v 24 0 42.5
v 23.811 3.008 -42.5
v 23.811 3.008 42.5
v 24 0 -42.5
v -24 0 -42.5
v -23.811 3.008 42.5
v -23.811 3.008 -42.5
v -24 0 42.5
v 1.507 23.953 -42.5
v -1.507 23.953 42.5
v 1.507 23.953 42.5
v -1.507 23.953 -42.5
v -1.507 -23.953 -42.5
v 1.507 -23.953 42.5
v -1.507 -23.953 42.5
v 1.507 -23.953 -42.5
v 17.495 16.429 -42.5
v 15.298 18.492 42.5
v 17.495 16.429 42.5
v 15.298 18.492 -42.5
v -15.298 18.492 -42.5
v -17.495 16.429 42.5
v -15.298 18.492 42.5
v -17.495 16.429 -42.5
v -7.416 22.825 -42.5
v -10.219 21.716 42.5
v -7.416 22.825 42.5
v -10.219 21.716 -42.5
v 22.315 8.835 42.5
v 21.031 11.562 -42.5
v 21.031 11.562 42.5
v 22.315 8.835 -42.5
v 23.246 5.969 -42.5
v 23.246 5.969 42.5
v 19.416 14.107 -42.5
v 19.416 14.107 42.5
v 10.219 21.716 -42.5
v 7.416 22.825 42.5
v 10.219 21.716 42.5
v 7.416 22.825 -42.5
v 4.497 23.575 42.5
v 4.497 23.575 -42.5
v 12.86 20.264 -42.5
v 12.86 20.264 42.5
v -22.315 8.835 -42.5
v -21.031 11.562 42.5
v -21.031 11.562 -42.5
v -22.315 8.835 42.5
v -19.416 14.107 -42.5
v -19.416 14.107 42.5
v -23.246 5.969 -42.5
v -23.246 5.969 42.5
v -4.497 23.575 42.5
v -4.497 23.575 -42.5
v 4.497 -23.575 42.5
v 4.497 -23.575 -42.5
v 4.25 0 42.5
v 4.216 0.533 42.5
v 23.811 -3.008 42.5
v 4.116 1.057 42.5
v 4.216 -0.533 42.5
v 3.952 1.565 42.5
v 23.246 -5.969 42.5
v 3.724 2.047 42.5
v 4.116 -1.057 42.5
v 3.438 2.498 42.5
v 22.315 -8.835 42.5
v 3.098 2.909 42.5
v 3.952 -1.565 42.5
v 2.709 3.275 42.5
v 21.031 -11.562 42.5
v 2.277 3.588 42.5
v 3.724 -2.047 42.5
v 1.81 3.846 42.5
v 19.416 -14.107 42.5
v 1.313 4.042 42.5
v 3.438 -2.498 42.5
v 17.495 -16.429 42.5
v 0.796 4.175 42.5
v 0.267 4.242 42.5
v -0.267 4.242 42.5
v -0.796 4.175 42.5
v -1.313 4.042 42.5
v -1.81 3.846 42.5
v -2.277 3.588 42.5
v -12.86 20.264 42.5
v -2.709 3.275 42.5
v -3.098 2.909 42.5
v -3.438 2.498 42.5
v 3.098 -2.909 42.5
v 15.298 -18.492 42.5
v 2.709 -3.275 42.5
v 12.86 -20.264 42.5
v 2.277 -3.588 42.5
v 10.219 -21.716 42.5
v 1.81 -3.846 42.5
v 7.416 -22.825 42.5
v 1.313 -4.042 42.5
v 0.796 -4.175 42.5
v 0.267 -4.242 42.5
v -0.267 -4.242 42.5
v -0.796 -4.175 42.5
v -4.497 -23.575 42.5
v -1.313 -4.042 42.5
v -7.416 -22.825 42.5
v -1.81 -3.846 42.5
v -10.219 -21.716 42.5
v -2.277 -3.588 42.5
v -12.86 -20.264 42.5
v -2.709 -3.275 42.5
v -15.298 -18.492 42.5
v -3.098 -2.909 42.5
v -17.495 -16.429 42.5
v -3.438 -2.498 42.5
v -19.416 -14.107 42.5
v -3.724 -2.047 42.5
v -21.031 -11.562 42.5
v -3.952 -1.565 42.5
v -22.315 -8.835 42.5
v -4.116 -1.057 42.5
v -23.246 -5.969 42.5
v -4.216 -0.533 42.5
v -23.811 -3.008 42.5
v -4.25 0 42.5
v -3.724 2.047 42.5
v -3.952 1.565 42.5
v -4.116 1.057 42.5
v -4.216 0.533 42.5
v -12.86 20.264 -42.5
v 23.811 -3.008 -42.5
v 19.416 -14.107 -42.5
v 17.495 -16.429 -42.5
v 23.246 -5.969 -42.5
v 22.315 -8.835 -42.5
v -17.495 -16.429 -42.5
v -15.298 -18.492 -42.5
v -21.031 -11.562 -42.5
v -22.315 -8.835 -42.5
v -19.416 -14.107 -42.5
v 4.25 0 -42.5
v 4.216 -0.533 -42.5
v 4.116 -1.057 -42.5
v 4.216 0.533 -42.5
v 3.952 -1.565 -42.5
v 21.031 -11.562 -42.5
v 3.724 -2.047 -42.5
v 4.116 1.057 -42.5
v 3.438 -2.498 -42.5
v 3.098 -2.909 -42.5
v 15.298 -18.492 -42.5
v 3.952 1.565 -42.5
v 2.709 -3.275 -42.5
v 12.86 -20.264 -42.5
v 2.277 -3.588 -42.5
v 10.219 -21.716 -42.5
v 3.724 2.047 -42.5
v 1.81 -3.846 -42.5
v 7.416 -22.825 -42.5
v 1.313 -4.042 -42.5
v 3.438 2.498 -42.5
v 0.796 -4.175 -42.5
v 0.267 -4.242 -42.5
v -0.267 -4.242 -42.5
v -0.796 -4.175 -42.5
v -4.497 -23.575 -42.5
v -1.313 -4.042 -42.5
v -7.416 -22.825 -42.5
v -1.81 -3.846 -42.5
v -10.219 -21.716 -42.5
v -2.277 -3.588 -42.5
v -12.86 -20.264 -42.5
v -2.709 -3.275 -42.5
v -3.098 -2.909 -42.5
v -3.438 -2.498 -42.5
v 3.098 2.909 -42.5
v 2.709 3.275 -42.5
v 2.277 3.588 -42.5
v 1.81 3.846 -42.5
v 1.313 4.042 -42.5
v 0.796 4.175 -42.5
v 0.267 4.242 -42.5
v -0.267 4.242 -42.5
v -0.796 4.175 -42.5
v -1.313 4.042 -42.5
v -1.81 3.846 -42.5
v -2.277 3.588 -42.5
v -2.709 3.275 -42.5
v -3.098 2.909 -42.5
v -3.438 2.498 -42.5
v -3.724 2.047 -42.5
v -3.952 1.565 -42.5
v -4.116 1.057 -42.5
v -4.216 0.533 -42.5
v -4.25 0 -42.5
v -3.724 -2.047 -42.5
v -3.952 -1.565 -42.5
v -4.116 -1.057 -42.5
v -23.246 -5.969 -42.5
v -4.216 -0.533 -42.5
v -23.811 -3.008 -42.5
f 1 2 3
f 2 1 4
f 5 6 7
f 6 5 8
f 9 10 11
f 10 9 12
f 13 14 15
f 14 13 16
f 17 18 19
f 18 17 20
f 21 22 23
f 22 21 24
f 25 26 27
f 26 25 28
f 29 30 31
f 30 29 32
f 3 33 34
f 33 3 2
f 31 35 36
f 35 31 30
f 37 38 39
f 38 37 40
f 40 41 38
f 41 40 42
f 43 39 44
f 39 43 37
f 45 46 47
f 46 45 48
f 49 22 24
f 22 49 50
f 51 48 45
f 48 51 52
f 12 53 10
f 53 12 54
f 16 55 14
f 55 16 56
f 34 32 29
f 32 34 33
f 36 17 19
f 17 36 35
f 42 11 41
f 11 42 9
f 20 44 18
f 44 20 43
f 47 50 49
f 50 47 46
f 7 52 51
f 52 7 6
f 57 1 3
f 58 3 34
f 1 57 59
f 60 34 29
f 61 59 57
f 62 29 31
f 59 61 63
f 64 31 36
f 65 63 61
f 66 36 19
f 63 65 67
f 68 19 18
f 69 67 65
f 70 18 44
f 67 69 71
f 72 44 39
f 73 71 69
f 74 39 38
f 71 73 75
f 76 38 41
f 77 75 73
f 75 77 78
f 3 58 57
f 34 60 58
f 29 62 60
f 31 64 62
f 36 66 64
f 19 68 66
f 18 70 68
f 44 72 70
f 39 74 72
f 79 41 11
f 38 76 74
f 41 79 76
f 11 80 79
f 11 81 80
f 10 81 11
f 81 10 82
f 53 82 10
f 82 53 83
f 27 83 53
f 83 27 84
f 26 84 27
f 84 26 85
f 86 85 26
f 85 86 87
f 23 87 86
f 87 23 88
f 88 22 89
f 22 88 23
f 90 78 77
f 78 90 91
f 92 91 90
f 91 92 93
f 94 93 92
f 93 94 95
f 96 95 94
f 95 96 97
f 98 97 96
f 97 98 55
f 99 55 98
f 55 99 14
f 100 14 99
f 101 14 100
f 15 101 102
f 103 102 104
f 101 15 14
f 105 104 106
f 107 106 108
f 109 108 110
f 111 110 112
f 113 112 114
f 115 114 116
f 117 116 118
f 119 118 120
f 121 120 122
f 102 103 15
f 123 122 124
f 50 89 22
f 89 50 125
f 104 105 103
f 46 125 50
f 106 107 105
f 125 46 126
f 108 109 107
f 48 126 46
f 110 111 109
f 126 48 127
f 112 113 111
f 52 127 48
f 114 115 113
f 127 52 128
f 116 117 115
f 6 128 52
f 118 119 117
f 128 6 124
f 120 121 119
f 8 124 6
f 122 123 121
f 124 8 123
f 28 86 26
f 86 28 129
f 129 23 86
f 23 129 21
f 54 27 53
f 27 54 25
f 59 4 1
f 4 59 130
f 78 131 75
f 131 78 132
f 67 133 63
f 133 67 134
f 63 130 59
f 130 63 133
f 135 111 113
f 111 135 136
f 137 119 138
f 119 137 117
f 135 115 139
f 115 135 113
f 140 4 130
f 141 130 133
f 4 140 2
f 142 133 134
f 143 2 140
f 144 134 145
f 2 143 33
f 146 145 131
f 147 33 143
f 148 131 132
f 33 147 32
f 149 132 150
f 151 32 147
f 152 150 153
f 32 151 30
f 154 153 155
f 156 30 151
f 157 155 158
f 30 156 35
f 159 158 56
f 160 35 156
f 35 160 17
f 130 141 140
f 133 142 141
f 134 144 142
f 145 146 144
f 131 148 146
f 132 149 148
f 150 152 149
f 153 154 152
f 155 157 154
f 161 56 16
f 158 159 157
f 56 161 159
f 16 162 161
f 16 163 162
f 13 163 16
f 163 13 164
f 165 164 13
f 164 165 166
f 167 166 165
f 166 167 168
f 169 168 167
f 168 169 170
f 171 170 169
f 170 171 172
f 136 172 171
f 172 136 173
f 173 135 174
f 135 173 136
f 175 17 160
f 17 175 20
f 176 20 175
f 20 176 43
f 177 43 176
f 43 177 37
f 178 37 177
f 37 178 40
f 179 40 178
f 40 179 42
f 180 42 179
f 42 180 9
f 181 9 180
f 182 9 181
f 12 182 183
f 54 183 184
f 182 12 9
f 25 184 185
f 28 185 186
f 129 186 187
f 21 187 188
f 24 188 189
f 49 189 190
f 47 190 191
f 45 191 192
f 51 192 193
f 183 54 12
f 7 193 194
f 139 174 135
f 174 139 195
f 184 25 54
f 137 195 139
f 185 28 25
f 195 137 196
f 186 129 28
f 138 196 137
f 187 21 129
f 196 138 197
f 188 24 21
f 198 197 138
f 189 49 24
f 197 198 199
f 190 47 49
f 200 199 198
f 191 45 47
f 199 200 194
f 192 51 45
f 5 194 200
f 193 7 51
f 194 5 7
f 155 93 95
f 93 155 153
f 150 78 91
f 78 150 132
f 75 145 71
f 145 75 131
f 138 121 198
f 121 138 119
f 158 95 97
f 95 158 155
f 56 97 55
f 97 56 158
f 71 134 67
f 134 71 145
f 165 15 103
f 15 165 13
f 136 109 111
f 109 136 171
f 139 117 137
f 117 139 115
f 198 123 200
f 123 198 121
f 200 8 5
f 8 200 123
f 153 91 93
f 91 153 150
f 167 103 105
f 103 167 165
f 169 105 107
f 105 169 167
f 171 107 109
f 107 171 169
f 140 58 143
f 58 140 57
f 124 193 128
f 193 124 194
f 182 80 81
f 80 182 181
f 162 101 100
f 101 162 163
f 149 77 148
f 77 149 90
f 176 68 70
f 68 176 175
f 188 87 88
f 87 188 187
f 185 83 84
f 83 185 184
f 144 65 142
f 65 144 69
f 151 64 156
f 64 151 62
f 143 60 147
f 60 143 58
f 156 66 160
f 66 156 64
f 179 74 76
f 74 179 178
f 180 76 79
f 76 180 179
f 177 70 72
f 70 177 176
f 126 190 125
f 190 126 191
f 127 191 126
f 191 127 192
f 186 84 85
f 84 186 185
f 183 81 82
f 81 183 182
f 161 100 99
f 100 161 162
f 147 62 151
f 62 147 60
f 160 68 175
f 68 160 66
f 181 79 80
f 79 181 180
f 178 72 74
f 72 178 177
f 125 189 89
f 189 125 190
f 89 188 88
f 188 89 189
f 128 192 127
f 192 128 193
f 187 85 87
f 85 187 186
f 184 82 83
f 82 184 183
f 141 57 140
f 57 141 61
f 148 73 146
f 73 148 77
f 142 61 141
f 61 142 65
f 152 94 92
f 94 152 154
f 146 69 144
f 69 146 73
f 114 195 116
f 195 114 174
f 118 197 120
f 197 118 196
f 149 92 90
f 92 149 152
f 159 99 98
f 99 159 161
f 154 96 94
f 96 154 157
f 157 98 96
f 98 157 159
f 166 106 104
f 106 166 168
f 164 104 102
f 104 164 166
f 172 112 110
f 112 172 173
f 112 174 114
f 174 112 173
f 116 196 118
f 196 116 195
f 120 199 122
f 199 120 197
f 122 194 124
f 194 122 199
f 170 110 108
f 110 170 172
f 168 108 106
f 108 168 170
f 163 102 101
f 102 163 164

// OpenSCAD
$fn = 50;


difference() {
	union() {
		translate(v = [0, 0, -42.5000000000]) {
			cylinder(h = 85, r = 24.0000000000);
		}
	}
	union() {
		translate(v = [0, 0, -100.0000000000]) {
			cylinder(h = 200, r = 4.2500000000);
		}
	}
}
